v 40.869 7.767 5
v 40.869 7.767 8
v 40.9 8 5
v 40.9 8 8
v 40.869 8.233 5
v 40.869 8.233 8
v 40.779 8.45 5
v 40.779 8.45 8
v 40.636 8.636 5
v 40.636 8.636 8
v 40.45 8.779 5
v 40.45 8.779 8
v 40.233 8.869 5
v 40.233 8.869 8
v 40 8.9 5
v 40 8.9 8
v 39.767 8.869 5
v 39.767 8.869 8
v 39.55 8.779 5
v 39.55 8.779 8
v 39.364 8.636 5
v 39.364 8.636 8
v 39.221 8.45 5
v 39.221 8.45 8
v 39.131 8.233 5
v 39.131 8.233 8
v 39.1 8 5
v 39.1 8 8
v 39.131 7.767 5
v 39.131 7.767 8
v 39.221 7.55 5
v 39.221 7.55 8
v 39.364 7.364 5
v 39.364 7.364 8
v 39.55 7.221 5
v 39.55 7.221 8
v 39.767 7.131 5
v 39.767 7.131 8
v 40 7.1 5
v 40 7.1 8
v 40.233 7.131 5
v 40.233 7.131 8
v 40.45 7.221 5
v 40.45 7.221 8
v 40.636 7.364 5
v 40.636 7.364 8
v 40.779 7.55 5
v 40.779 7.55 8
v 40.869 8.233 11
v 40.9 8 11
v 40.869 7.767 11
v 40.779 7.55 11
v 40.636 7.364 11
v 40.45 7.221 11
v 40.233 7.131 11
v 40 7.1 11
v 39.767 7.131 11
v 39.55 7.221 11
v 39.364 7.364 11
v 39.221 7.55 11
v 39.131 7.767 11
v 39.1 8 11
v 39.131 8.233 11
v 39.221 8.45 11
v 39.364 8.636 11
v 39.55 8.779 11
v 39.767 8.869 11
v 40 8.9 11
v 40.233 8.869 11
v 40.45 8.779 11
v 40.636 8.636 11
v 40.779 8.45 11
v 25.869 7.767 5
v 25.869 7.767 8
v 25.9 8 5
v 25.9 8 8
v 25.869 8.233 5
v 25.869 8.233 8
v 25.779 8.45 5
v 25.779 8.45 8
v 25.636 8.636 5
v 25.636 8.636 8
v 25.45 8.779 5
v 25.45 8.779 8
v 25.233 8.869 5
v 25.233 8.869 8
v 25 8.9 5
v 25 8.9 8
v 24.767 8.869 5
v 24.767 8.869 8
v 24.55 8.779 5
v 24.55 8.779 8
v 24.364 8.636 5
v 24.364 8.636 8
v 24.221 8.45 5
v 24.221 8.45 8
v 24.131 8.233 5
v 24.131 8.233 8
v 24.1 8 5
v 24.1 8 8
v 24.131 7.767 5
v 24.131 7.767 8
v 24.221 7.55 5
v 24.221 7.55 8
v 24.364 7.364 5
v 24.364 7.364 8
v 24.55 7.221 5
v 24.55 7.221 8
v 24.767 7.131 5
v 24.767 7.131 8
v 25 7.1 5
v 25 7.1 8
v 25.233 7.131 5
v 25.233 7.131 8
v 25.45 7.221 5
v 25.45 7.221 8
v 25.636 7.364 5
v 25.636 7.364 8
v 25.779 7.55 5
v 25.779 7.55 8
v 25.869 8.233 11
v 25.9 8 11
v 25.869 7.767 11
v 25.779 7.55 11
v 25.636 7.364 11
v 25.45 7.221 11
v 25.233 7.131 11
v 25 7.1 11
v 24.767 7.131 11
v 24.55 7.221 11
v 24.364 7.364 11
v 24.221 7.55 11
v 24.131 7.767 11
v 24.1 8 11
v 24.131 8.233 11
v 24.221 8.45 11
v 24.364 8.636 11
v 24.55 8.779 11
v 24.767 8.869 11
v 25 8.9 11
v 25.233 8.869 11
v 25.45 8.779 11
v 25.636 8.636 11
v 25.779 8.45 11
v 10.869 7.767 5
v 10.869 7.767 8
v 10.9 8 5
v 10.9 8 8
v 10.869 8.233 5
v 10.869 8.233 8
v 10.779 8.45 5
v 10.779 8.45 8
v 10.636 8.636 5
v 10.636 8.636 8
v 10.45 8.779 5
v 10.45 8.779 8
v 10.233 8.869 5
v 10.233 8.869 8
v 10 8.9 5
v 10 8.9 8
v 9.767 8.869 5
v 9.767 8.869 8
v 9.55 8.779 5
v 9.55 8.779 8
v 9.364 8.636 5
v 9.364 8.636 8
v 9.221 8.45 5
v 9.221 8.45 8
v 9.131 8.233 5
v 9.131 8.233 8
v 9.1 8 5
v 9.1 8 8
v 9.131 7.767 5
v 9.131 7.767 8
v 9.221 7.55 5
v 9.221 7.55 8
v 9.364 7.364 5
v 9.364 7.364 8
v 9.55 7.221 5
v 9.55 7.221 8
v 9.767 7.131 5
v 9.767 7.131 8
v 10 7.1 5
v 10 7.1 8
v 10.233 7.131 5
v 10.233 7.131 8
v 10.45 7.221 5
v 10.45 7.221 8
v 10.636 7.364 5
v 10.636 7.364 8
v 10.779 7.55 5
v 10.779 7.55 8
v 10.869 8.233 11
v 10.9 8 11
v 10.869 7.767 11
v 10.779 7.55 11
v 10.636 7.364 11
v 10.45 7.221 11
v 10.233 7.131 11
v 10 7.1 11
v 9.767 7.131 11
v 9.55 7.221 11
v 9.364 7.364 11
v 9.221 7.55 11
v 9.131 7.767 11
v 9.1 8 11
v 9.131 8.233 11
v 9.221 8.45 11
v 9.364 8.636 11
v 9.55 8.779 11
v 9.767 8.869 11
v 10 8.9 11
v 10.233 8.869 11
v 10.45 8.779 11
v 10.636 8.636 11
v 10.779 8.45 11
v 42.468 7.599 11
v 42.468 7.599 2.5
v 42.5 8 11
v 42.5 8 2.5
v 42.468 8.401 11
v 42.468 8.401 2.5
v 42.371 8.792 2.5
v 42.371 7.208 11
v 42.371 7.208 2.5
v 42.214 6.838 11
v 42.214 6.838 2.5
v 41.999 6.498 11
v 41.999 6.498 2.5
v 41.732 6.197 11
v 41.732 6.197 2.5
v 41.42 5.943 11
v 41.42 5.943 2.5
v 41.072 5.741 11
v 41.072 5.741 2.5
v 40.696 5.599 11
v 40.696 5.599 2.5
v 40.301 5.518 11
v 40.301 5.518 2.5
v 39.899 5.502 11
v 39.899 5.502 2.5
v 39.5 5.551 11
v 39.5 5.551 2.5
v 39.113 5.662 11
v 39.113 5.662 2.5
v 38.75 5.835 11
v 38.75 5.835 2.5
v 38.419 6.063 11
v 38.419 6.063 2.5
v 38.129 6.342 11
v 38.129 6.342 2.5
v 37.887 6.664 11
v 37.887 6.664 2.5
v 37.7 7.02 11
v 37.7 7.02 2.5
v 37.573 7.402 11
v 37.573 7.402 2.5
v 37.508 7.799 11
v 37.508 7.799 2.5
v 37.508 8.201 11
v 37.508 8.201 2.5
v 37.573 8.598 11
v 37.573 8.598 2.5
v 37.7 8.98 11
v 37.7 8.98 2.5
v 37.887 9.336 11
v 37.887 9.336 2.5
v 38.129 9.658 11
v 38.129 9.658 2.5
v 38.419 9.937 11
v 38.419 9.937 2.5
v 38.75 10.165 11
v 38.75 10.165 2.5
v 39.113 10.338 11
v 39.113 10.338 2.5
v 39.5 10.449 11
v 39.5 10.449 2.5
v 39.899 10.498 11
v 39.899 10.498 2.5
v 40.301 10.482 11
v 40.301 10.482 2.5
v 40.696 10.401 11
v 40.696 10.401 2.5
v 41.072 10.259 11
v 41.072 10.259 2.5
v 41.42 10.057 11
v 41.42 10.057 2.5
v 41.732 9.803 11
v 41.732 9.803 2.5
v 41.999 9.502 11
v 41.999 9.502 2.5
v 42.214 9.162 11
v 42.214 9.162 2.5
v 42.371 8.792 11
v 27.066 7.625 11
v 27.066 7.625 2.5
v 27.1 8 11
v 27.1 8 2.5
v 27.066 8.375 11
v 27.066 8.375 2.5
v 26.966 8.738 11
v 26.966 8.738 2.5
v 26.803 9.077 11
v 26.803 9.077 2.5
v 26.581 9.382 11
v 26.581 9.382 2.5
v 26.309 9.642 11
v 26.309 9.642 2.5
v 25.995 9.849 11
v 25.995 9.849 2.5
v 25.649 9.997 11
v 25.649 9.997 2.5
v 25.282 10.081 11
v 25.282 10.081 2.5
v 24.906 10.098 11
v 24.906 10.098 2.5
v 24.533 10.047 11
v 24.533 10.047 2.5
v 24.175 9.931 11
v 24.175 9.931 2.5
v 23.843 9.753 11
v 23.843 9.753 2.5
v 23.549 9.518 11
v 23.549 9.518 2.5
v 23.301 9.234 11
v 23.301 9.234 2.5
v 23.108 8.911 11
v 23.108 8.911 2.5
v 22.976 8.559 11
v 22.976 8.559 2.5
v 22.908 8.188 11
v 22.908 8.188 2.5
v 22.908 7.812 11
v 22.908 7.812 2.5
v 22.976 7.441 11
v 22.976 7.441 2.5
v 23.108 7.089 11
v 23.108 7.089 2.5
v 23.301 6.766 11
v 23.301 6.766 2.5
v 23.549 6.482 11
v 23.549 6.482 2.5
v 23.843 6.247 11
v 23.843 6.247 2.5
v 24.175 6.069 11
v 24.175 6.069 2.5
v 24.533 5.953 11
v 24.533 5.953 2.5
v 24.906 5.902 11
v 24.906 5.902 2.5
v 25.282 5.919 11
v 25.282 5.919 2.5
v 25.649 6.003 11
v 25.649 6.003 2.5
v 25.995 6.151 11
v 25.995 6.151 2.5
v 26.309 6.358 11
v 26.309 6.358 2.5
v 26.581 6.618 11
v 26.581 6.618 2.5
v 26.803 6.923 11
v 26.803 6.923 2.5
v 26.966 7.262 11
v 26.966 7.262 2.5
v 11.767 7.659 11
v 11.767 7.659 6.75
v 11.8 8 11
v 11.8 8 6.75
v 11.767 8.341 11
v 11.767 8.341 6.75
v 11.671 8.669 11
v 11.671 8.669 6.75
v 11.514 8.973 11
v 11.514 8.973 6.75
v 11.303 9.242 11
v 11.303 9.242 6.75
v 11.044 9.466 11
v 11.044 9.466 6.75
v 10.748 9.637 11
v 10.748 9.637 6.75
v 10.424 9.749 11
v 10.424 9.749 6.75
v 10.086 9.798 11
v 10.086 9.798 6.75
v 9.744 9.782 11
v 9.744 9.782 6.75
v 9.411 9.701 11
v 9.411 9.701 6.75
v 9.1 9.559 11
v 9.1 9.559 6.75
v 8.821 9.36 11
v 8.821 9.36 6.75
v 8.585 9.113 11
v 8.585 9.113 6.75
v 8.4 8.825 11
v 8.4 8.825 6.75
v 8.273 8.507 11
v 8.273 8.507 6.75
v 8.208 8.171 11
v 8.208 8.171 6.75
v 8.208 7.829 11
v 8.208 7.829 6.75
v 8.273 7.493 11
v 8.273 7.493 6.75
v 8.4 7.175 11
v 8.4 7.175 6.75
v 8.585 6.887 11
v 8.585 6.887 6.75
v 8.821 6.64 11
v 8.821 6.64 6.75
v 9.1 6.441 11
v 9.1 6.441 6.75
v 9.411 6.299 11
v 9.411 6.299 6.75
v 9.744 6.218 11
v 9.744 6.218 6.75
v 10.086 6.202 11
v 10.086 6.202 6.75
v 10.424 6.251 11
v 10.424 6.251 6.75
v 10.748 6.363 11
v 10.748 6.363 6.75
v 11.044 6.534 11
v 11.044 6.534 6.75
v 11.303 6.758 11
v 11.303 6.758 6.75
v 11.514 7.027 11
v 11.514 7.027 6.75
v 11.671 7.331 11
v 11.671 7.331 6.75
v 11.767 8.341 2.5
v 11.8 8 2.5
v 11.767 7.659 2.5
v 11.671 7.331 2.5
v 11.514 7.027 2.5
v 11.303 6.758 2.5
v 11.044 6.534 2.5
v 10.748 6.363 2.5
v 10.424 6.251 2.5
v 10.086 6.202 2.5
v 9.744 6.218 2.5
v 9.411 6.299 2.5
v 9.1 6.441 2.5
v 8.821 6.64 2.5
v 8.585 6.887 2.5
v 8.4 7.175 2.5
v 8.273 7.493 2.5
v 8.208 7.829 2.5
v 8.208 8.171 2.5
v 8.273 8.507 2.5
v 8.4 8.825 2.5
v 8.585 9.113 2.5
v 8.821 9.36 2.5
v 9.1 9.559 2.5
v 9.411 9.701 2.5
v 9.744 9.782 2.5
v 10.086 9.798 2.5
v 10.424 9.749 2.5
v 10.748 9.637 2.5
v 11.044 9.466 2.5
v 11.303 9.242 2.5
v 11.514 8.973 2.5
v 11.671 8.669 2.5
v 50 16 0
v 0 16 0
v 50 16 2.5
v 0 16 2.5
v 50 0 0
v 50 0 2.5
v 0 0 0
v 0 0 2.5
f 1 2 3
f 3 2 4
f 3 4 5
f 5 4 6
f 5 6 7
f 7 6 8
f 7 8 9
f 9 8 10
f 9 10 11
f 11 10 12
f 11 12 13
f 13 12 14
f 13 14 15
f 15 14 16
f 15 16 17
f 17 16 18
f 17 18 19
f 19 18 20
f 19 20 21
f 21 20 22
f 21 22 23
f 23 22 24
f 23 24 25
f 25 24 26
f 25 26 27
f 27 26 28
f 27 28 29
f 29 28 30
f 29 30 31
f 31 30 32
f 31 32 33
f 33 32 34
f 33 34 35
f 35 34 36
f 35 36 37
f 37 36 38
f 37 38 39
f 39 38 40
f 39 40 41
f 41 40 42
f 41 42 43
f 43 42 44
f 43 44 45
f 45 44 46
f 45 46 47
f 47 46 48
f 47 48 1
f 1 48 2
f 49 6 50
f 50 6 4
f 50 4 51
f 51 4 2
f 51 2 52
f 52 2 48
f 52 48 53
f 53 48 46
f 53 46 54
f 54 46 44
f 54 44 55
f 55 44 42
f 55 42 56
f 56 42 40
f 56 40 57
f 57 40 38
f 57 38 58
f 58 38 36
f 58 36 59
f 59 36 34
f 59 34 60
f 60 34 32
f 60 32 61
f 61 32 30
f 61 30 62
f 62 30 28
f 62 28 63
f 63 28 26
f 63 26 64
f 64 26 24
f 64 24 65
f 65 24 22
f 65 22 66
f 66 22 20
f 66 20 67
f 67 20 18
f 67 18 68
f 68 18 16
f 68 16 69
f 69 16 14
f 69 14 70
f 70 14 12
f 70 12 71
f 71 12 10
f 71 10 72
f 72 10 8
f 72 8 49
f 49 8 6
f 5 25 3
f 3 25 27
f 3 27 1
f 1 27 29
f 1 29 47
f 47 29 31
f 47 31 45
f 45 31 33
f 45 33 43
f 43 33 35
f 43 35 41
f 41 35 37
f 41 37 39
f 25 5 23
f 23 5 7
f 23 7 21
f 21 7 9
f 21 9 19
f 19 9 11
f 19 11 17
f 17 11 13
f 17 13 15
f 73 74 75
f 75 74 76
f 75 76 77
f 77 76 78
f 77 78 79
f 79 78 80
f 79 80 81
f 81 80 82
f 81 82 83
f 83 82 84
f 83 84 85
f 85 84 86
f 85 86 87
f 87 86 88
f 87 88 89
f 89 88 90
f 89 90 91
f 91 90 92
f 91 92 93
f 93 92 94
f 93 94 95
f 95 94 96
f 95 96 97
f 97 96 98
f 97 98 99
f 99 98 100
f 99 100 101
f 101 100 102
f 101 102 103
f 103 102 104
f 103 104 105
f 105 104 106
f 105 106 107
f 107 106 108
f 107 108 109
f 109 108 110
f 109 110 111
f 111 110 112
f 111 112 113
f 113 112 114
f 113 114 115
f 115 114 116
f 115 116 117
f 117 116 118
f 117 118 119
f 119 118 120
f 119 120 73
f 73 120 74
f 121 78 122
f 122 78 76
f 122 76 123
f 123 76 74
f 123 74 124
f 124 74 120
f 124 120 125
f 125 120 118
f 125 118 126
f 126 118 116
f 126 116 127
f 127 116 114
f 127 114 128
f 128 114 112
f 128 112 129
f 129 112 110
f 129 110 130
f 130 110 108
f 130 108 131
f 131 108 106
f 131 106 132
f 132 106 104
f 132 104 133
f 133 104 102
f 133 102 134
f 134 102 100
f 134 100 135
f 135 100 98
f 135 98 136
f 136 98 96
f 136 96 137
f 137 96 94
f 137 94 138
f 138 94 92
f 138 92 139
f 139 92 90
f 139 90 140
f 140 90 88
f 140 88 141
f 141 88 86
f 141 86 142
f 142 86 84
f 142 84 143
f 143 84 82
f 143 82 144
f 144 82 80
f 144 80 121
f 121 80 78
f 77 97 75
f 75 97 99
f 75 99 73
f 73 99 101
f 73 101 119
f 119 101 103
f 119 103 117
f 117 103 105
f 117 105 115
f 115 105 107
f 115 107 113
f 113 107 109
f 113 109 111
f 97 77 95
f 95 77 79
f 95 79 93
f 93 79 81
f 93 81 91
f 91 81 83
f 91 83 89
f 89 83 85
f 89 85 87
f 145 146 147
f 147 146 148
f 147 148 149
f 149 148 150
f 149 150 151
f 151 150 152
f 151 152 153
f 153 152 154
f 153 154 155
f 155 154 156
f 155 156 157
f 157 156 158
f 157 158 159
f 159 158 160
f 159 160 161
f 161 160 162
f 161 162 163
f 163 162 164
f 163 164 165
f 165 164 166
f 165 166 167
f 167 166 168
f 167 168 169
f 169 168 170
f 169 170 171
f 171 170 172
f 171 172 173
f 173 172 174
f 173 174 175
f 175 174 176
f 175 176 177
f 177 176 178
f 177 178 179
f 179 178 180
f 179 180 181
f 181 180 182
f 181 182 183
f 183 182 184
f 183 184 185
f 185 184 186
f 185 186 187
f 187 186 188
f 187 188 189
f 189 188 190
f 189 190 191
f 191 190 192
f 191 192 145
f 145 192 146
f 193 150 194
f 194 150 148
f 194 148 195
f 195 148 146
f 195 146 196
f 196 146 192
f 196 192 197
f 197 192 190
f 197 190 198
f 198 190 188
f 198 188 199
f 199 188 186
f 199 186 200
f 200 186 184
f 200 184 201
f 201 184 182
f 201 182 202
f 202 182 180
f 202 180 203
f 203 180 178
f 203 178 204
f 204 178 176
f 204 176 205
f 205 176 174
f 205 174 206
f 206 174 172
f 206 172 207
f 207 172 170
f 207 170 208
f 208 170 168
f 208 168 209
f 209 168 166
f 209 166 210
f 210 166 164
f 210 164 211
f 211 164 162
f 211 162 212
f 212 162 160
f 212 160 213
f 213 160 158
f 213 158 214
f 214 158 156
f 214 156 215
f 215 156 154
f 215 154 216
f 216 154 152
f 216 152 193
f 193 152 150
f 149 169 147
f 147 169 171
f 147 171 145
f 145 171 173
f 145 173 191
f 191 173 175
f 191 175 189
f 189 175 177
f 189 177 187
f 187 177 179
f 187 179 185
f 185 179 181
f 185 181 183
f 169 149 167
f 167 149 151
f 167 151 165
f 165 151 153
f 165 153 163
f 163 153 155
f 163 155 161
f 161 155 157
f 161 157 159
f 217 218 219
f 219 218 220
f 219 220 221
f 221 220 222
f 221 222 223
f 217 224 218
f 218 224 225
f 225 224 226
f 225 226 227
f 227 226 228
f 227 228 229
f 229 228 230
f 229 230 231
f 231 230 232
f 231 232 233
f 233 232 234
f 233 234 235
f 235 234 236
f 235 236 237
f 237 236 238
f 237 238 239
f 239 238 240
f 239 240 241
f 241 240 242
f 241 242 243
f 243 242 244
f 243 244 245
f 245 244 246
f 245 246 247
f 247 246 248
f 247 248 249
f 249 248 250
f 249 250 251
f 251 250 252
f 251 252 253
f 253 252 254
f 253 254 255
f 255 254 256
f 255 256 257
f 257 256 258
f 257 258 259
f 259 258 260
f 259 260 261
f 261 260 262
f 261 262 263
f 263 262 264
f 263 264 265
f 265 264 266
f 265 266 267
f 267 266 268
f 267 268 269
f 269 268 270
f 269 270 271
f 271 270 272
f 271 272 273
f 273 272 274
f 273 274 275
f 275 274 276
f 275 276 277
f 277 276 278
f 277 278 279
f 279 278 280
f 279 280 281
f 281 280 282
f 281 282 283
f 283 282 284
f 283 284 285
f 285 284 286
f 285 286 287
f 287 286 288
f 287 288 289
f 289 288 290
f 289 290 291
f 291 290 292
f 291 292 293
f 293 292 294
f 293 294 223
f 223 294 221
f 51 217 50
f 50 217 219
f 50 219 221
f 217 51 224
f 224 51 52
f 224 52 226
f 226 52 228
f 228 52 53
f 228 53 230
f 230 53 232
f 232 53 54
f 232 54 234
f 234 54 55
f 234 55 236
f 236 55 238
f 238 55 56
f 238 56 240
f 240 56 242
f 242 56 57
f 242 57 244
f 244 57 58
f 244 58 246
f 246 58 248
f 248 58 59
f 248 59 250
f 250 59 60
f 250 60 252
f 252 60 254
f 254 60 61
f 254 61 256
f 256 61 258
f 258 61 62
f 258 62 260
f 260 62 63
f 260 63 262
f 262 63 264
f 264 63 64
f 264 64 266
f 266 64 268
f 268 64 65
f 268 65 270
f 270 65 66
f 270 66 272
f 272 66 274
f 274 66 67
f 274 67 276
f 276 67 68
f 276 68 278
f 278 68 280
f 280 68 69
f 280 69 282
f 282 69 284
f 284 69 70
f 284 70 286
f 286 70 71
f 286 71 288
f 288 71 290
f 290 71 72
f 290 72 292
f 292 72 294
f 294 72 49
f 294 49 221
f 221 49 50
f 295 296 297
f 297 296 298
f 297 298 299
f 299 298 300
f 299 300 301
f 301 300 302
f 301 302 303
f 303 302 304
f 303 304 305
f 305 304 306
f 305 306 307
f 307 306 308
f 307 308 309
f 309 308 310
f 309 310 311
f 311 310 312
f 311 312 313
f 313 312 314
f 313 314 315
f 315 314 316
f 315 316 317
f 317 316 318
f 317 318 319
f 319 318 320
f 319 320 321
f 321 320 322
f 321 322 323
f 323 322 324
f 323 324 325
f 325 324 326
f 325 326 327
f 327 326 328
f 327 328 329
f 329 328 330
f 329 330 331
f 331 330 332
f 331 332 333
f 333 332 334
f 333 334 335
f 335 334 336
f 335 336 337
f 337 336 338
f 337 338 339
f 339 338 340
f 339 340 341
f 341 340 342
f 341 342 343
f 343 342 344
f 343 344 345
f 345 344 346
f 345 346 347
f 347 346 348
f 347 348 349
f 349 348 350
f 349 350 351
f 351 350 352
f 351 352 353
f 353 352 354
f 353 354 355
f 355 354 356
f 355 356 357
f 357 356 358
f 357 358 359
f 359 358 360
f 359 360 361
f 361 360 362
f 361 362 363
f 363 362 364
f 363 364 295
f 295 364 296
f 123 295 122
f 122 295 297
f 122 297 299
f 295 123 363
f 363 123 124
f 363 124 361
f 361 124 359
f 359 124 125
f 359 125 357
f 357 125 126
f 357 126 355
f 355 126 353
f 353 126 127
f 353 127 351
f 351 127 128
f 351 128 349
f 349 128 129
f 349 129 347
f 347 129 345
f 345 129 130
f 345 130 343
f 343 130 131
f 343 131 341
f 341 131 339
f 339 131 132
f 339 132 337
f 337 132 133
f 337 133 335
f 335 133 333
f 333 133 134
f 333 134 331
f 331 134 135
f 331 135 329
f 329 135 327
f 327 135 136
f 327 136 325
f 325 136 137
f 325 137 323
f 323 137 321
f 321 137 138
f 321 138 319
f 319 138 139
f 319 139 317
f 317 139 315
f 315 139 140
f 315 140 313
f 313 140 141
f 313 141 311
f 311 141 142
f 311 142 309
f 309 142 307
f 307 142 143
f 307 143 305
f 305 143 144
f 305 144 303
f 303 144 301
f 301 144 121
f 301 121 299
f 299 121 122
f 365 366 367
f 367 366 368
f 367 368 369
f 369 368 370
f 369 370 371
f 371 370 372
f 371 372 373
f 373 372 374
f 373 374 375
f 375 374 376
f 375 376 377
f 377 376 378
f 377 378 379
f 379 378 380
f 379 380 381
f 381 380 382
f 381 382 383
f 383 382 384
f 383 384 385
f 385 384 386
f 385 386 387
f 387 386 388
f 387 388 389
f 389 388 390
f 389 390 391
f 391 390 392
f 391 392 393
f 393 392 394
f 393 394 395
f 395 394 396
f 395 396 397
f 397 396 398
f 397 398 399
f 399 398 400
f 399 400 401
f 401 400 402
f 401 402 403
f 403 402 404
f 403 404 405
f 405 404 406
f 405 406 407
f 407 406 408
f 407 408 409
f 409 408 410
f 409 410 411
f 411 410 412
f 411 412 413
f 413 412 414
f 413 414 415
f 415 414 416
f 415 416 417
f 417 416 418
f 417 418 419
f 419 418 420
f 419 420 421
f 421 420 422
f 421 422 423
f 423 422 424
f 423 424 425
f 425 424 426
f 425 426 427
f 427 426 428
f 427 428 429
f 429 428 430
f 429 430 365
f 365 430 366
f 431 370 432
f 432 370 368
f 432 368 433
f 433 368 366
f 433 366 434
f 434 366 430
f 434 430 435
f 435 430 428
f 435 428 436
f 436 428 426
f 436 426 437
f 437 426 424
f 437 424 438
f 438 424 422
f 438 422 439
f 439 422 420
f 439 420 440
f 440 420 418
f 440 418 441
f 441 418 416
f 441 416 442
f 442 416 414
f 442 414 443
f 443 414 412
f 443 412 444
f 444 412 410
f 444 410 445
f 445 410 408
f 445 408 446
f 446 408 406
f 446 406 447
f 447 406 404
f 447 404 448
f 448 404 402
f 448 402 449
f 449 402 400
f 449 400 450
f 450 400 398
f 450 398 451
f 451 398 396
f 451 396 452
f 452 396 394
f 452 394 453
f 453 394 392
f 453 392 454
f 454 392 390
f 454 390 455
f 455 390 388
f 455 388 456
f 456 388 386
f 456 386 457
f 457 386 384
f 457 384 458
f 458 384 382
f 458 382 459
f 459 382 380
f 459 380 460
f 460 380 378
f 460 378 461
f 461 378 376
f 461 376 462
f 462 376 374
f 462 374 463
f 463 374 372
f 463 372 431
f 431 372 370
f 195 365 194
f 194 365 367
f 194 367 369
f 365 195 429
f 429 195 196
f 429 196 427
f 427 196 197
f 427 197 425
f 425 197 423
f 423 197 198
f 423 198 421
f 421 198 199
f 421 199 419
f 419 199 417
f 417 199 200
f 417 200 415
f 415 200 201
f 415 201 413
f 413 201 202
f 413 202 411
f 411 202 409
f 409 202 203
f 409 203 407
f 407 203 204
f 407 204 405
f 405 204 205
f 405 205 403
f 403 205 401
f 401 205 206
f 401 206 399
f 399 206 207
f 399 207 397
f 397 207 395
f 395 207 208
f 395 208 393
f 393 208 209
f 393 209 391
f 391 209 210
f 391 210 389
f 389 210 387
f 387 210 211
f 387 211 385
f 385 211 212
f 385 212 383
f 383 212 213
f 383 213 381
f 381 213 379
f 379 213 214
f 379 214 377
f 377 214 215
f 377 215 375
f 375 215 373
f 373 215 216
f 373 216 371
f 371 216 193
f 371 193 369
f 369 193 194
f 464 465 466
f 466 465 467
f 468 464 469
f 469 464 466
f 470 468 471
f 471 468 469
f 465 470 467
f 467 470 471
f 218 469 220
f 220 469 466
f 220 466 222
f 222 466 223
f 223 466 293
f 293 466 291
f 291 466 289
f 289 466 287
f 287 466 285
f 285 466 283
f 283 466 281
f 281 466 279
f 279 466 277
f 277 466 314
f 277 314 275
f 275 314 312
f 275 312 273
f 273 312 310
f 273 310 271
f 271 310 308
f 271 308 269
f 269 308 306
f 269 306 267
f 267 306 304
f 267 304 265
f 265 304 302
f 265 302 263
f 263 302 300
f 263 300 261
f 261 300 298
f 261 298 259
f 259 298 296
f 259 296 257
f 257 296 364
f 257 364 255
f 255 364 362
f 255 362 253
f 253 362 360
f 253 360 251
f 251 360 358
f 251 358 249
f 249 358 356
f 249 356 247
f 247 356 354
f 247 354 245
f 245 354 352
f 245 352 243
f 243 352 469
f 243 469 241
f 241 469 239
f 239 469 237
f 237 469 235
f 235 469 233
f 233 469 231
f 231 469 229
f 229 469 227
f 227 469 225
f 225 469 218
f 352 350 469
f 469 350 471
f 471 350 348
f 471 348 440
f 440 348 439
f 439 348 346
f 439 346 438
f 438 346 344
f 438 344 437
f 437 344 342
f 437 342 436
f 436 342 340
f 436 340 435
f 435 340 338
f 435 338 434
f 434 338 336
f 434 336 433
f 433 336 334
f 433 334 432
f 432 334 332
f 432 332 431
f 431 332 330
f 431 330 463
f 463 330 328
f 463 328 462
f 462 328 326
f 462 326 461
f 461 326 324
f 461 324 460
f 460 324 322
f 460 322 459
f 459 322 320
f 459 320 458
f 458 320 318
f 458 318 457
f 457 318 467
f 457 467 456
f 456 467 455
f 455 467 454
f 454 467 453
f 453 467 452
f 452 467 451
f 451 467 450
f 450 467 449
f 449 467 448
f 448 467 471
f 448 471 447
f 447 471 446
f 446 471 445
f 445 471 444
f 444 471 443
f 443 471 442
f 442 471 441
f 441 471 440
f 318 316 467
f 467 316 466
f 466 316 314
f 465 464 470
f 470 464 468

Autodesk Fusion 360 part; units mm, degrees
sketch "Esquisse1" plane through (0, 0, 0) normal (0, 0, 1) x (1, 0, 0)
  line L0 (0, 0) -> (50, 0)
  line L1 (50, 0) -> (50, 16)
  line L2 (50, 16) -> (0, 16)
  line L3 (0, 16) -> (0, 0)
  dimension "d7" = 50
  dimension "d8" = 16
extrude "Extrusion1" add sketch "Esquisse1" along normal blind 2.5
sketch "Esquisse2" plane through (0, 0, 2.5) normal (0, 0, 1) x (-1, 0, 0)
  line L0 (0, -16) -> (0, 0)
  line L1 (0, 0) -> (-50, 0)
  line L2 (-50, 0) -> (-50, -16)
  line L3 (-50, -16) -> (0, -16)
  circle A0 centre (-10, -8) radius 1.8
  dimension "d11" = 3.6
  dimension "d12" = 8
  dimension "d13" = 10
extrude "Extrusion2" add sketch "Esquisse2" along normal blind 8.5 contours A0
sketch "Esquisse3" plane through (0, 0, 2.5) normal (0, 0, 1) x (-1, 0, 0)
  circle A0 centre (-10, -8) radius 1.8
  line L0 (0, -16) -> (0, 0)
  line L1 (0, 0) -> (-50, 0)
  line L2 (-50, 0) -> (-50, -16)
  line L3 (-50, -16) -> (0, -16)
  circle A1 centre (-25, -8) radius 2.1
  dimension "d16" = 4.2
  dimension "d17" = 8
  dimension "d18" = 25
extrude "Extrusion3" add sketch "Esquisse3" along normal blind 8.5 contours A1
sketch "Esquisse4" plane through (0, 0, 2.5) normal (0, 0, 1) x (-1, 0, 0)
  circle A0 centre (-25, -8) radius 2.1
  circle A1 centre (-10, -8) radius 1.8
  line L0 (0, -16) -> (0, 0)
  line L1 (0, 0) -> (-50, 0)
  line L2 (-50, 0) -> (-50, -16)
  line L3 (-50, -16) -> (0, -16)
  circle A2 centre (-40, -8) radius 2.5
  dimension "d21" = 5
  dimension "d22" = 8
  dimension "d23" = 40
extrude "Extrusion4" add sketch "Esquisse4" along normal blind 8.5 contours A2
sketch "Esquisse5" plane through (0, 0, 11) normal (0, 0, 1) x (-1, 0, 0)
  circle A0 centre (-10, -8) radius 1.8
  circle A1 centre (-10, -8) radius 0.9
  dimension "d26" = 1.8
extrude "Extrusion5" cut sketch "Esquisse5" against normal blind 6 contours A1
pattern_linear "Réseau R1" count 3 spacing 15 along (1, 0, 0) of "Extrusion5"
equation "l_plaque = 50 mm"
equation "w_plaque = 16 mm"
equation "ep_plaque = 2.5 mm"
equation "h_plot = 8.5 mm"
equation "d_pilote = 1.8 mm"
equation "p_pilote = 6 mm"
equation "d7 = l_plaque"
equation "d8 = w_plaque"
equation "d9 = ep_plaque"
equation "d14 = h_plot"
equation "d19 = h_plot"
equation "d24 = h_plot"
equation "d26 = d_pilote"
equation "d27 = -p_pilote"
